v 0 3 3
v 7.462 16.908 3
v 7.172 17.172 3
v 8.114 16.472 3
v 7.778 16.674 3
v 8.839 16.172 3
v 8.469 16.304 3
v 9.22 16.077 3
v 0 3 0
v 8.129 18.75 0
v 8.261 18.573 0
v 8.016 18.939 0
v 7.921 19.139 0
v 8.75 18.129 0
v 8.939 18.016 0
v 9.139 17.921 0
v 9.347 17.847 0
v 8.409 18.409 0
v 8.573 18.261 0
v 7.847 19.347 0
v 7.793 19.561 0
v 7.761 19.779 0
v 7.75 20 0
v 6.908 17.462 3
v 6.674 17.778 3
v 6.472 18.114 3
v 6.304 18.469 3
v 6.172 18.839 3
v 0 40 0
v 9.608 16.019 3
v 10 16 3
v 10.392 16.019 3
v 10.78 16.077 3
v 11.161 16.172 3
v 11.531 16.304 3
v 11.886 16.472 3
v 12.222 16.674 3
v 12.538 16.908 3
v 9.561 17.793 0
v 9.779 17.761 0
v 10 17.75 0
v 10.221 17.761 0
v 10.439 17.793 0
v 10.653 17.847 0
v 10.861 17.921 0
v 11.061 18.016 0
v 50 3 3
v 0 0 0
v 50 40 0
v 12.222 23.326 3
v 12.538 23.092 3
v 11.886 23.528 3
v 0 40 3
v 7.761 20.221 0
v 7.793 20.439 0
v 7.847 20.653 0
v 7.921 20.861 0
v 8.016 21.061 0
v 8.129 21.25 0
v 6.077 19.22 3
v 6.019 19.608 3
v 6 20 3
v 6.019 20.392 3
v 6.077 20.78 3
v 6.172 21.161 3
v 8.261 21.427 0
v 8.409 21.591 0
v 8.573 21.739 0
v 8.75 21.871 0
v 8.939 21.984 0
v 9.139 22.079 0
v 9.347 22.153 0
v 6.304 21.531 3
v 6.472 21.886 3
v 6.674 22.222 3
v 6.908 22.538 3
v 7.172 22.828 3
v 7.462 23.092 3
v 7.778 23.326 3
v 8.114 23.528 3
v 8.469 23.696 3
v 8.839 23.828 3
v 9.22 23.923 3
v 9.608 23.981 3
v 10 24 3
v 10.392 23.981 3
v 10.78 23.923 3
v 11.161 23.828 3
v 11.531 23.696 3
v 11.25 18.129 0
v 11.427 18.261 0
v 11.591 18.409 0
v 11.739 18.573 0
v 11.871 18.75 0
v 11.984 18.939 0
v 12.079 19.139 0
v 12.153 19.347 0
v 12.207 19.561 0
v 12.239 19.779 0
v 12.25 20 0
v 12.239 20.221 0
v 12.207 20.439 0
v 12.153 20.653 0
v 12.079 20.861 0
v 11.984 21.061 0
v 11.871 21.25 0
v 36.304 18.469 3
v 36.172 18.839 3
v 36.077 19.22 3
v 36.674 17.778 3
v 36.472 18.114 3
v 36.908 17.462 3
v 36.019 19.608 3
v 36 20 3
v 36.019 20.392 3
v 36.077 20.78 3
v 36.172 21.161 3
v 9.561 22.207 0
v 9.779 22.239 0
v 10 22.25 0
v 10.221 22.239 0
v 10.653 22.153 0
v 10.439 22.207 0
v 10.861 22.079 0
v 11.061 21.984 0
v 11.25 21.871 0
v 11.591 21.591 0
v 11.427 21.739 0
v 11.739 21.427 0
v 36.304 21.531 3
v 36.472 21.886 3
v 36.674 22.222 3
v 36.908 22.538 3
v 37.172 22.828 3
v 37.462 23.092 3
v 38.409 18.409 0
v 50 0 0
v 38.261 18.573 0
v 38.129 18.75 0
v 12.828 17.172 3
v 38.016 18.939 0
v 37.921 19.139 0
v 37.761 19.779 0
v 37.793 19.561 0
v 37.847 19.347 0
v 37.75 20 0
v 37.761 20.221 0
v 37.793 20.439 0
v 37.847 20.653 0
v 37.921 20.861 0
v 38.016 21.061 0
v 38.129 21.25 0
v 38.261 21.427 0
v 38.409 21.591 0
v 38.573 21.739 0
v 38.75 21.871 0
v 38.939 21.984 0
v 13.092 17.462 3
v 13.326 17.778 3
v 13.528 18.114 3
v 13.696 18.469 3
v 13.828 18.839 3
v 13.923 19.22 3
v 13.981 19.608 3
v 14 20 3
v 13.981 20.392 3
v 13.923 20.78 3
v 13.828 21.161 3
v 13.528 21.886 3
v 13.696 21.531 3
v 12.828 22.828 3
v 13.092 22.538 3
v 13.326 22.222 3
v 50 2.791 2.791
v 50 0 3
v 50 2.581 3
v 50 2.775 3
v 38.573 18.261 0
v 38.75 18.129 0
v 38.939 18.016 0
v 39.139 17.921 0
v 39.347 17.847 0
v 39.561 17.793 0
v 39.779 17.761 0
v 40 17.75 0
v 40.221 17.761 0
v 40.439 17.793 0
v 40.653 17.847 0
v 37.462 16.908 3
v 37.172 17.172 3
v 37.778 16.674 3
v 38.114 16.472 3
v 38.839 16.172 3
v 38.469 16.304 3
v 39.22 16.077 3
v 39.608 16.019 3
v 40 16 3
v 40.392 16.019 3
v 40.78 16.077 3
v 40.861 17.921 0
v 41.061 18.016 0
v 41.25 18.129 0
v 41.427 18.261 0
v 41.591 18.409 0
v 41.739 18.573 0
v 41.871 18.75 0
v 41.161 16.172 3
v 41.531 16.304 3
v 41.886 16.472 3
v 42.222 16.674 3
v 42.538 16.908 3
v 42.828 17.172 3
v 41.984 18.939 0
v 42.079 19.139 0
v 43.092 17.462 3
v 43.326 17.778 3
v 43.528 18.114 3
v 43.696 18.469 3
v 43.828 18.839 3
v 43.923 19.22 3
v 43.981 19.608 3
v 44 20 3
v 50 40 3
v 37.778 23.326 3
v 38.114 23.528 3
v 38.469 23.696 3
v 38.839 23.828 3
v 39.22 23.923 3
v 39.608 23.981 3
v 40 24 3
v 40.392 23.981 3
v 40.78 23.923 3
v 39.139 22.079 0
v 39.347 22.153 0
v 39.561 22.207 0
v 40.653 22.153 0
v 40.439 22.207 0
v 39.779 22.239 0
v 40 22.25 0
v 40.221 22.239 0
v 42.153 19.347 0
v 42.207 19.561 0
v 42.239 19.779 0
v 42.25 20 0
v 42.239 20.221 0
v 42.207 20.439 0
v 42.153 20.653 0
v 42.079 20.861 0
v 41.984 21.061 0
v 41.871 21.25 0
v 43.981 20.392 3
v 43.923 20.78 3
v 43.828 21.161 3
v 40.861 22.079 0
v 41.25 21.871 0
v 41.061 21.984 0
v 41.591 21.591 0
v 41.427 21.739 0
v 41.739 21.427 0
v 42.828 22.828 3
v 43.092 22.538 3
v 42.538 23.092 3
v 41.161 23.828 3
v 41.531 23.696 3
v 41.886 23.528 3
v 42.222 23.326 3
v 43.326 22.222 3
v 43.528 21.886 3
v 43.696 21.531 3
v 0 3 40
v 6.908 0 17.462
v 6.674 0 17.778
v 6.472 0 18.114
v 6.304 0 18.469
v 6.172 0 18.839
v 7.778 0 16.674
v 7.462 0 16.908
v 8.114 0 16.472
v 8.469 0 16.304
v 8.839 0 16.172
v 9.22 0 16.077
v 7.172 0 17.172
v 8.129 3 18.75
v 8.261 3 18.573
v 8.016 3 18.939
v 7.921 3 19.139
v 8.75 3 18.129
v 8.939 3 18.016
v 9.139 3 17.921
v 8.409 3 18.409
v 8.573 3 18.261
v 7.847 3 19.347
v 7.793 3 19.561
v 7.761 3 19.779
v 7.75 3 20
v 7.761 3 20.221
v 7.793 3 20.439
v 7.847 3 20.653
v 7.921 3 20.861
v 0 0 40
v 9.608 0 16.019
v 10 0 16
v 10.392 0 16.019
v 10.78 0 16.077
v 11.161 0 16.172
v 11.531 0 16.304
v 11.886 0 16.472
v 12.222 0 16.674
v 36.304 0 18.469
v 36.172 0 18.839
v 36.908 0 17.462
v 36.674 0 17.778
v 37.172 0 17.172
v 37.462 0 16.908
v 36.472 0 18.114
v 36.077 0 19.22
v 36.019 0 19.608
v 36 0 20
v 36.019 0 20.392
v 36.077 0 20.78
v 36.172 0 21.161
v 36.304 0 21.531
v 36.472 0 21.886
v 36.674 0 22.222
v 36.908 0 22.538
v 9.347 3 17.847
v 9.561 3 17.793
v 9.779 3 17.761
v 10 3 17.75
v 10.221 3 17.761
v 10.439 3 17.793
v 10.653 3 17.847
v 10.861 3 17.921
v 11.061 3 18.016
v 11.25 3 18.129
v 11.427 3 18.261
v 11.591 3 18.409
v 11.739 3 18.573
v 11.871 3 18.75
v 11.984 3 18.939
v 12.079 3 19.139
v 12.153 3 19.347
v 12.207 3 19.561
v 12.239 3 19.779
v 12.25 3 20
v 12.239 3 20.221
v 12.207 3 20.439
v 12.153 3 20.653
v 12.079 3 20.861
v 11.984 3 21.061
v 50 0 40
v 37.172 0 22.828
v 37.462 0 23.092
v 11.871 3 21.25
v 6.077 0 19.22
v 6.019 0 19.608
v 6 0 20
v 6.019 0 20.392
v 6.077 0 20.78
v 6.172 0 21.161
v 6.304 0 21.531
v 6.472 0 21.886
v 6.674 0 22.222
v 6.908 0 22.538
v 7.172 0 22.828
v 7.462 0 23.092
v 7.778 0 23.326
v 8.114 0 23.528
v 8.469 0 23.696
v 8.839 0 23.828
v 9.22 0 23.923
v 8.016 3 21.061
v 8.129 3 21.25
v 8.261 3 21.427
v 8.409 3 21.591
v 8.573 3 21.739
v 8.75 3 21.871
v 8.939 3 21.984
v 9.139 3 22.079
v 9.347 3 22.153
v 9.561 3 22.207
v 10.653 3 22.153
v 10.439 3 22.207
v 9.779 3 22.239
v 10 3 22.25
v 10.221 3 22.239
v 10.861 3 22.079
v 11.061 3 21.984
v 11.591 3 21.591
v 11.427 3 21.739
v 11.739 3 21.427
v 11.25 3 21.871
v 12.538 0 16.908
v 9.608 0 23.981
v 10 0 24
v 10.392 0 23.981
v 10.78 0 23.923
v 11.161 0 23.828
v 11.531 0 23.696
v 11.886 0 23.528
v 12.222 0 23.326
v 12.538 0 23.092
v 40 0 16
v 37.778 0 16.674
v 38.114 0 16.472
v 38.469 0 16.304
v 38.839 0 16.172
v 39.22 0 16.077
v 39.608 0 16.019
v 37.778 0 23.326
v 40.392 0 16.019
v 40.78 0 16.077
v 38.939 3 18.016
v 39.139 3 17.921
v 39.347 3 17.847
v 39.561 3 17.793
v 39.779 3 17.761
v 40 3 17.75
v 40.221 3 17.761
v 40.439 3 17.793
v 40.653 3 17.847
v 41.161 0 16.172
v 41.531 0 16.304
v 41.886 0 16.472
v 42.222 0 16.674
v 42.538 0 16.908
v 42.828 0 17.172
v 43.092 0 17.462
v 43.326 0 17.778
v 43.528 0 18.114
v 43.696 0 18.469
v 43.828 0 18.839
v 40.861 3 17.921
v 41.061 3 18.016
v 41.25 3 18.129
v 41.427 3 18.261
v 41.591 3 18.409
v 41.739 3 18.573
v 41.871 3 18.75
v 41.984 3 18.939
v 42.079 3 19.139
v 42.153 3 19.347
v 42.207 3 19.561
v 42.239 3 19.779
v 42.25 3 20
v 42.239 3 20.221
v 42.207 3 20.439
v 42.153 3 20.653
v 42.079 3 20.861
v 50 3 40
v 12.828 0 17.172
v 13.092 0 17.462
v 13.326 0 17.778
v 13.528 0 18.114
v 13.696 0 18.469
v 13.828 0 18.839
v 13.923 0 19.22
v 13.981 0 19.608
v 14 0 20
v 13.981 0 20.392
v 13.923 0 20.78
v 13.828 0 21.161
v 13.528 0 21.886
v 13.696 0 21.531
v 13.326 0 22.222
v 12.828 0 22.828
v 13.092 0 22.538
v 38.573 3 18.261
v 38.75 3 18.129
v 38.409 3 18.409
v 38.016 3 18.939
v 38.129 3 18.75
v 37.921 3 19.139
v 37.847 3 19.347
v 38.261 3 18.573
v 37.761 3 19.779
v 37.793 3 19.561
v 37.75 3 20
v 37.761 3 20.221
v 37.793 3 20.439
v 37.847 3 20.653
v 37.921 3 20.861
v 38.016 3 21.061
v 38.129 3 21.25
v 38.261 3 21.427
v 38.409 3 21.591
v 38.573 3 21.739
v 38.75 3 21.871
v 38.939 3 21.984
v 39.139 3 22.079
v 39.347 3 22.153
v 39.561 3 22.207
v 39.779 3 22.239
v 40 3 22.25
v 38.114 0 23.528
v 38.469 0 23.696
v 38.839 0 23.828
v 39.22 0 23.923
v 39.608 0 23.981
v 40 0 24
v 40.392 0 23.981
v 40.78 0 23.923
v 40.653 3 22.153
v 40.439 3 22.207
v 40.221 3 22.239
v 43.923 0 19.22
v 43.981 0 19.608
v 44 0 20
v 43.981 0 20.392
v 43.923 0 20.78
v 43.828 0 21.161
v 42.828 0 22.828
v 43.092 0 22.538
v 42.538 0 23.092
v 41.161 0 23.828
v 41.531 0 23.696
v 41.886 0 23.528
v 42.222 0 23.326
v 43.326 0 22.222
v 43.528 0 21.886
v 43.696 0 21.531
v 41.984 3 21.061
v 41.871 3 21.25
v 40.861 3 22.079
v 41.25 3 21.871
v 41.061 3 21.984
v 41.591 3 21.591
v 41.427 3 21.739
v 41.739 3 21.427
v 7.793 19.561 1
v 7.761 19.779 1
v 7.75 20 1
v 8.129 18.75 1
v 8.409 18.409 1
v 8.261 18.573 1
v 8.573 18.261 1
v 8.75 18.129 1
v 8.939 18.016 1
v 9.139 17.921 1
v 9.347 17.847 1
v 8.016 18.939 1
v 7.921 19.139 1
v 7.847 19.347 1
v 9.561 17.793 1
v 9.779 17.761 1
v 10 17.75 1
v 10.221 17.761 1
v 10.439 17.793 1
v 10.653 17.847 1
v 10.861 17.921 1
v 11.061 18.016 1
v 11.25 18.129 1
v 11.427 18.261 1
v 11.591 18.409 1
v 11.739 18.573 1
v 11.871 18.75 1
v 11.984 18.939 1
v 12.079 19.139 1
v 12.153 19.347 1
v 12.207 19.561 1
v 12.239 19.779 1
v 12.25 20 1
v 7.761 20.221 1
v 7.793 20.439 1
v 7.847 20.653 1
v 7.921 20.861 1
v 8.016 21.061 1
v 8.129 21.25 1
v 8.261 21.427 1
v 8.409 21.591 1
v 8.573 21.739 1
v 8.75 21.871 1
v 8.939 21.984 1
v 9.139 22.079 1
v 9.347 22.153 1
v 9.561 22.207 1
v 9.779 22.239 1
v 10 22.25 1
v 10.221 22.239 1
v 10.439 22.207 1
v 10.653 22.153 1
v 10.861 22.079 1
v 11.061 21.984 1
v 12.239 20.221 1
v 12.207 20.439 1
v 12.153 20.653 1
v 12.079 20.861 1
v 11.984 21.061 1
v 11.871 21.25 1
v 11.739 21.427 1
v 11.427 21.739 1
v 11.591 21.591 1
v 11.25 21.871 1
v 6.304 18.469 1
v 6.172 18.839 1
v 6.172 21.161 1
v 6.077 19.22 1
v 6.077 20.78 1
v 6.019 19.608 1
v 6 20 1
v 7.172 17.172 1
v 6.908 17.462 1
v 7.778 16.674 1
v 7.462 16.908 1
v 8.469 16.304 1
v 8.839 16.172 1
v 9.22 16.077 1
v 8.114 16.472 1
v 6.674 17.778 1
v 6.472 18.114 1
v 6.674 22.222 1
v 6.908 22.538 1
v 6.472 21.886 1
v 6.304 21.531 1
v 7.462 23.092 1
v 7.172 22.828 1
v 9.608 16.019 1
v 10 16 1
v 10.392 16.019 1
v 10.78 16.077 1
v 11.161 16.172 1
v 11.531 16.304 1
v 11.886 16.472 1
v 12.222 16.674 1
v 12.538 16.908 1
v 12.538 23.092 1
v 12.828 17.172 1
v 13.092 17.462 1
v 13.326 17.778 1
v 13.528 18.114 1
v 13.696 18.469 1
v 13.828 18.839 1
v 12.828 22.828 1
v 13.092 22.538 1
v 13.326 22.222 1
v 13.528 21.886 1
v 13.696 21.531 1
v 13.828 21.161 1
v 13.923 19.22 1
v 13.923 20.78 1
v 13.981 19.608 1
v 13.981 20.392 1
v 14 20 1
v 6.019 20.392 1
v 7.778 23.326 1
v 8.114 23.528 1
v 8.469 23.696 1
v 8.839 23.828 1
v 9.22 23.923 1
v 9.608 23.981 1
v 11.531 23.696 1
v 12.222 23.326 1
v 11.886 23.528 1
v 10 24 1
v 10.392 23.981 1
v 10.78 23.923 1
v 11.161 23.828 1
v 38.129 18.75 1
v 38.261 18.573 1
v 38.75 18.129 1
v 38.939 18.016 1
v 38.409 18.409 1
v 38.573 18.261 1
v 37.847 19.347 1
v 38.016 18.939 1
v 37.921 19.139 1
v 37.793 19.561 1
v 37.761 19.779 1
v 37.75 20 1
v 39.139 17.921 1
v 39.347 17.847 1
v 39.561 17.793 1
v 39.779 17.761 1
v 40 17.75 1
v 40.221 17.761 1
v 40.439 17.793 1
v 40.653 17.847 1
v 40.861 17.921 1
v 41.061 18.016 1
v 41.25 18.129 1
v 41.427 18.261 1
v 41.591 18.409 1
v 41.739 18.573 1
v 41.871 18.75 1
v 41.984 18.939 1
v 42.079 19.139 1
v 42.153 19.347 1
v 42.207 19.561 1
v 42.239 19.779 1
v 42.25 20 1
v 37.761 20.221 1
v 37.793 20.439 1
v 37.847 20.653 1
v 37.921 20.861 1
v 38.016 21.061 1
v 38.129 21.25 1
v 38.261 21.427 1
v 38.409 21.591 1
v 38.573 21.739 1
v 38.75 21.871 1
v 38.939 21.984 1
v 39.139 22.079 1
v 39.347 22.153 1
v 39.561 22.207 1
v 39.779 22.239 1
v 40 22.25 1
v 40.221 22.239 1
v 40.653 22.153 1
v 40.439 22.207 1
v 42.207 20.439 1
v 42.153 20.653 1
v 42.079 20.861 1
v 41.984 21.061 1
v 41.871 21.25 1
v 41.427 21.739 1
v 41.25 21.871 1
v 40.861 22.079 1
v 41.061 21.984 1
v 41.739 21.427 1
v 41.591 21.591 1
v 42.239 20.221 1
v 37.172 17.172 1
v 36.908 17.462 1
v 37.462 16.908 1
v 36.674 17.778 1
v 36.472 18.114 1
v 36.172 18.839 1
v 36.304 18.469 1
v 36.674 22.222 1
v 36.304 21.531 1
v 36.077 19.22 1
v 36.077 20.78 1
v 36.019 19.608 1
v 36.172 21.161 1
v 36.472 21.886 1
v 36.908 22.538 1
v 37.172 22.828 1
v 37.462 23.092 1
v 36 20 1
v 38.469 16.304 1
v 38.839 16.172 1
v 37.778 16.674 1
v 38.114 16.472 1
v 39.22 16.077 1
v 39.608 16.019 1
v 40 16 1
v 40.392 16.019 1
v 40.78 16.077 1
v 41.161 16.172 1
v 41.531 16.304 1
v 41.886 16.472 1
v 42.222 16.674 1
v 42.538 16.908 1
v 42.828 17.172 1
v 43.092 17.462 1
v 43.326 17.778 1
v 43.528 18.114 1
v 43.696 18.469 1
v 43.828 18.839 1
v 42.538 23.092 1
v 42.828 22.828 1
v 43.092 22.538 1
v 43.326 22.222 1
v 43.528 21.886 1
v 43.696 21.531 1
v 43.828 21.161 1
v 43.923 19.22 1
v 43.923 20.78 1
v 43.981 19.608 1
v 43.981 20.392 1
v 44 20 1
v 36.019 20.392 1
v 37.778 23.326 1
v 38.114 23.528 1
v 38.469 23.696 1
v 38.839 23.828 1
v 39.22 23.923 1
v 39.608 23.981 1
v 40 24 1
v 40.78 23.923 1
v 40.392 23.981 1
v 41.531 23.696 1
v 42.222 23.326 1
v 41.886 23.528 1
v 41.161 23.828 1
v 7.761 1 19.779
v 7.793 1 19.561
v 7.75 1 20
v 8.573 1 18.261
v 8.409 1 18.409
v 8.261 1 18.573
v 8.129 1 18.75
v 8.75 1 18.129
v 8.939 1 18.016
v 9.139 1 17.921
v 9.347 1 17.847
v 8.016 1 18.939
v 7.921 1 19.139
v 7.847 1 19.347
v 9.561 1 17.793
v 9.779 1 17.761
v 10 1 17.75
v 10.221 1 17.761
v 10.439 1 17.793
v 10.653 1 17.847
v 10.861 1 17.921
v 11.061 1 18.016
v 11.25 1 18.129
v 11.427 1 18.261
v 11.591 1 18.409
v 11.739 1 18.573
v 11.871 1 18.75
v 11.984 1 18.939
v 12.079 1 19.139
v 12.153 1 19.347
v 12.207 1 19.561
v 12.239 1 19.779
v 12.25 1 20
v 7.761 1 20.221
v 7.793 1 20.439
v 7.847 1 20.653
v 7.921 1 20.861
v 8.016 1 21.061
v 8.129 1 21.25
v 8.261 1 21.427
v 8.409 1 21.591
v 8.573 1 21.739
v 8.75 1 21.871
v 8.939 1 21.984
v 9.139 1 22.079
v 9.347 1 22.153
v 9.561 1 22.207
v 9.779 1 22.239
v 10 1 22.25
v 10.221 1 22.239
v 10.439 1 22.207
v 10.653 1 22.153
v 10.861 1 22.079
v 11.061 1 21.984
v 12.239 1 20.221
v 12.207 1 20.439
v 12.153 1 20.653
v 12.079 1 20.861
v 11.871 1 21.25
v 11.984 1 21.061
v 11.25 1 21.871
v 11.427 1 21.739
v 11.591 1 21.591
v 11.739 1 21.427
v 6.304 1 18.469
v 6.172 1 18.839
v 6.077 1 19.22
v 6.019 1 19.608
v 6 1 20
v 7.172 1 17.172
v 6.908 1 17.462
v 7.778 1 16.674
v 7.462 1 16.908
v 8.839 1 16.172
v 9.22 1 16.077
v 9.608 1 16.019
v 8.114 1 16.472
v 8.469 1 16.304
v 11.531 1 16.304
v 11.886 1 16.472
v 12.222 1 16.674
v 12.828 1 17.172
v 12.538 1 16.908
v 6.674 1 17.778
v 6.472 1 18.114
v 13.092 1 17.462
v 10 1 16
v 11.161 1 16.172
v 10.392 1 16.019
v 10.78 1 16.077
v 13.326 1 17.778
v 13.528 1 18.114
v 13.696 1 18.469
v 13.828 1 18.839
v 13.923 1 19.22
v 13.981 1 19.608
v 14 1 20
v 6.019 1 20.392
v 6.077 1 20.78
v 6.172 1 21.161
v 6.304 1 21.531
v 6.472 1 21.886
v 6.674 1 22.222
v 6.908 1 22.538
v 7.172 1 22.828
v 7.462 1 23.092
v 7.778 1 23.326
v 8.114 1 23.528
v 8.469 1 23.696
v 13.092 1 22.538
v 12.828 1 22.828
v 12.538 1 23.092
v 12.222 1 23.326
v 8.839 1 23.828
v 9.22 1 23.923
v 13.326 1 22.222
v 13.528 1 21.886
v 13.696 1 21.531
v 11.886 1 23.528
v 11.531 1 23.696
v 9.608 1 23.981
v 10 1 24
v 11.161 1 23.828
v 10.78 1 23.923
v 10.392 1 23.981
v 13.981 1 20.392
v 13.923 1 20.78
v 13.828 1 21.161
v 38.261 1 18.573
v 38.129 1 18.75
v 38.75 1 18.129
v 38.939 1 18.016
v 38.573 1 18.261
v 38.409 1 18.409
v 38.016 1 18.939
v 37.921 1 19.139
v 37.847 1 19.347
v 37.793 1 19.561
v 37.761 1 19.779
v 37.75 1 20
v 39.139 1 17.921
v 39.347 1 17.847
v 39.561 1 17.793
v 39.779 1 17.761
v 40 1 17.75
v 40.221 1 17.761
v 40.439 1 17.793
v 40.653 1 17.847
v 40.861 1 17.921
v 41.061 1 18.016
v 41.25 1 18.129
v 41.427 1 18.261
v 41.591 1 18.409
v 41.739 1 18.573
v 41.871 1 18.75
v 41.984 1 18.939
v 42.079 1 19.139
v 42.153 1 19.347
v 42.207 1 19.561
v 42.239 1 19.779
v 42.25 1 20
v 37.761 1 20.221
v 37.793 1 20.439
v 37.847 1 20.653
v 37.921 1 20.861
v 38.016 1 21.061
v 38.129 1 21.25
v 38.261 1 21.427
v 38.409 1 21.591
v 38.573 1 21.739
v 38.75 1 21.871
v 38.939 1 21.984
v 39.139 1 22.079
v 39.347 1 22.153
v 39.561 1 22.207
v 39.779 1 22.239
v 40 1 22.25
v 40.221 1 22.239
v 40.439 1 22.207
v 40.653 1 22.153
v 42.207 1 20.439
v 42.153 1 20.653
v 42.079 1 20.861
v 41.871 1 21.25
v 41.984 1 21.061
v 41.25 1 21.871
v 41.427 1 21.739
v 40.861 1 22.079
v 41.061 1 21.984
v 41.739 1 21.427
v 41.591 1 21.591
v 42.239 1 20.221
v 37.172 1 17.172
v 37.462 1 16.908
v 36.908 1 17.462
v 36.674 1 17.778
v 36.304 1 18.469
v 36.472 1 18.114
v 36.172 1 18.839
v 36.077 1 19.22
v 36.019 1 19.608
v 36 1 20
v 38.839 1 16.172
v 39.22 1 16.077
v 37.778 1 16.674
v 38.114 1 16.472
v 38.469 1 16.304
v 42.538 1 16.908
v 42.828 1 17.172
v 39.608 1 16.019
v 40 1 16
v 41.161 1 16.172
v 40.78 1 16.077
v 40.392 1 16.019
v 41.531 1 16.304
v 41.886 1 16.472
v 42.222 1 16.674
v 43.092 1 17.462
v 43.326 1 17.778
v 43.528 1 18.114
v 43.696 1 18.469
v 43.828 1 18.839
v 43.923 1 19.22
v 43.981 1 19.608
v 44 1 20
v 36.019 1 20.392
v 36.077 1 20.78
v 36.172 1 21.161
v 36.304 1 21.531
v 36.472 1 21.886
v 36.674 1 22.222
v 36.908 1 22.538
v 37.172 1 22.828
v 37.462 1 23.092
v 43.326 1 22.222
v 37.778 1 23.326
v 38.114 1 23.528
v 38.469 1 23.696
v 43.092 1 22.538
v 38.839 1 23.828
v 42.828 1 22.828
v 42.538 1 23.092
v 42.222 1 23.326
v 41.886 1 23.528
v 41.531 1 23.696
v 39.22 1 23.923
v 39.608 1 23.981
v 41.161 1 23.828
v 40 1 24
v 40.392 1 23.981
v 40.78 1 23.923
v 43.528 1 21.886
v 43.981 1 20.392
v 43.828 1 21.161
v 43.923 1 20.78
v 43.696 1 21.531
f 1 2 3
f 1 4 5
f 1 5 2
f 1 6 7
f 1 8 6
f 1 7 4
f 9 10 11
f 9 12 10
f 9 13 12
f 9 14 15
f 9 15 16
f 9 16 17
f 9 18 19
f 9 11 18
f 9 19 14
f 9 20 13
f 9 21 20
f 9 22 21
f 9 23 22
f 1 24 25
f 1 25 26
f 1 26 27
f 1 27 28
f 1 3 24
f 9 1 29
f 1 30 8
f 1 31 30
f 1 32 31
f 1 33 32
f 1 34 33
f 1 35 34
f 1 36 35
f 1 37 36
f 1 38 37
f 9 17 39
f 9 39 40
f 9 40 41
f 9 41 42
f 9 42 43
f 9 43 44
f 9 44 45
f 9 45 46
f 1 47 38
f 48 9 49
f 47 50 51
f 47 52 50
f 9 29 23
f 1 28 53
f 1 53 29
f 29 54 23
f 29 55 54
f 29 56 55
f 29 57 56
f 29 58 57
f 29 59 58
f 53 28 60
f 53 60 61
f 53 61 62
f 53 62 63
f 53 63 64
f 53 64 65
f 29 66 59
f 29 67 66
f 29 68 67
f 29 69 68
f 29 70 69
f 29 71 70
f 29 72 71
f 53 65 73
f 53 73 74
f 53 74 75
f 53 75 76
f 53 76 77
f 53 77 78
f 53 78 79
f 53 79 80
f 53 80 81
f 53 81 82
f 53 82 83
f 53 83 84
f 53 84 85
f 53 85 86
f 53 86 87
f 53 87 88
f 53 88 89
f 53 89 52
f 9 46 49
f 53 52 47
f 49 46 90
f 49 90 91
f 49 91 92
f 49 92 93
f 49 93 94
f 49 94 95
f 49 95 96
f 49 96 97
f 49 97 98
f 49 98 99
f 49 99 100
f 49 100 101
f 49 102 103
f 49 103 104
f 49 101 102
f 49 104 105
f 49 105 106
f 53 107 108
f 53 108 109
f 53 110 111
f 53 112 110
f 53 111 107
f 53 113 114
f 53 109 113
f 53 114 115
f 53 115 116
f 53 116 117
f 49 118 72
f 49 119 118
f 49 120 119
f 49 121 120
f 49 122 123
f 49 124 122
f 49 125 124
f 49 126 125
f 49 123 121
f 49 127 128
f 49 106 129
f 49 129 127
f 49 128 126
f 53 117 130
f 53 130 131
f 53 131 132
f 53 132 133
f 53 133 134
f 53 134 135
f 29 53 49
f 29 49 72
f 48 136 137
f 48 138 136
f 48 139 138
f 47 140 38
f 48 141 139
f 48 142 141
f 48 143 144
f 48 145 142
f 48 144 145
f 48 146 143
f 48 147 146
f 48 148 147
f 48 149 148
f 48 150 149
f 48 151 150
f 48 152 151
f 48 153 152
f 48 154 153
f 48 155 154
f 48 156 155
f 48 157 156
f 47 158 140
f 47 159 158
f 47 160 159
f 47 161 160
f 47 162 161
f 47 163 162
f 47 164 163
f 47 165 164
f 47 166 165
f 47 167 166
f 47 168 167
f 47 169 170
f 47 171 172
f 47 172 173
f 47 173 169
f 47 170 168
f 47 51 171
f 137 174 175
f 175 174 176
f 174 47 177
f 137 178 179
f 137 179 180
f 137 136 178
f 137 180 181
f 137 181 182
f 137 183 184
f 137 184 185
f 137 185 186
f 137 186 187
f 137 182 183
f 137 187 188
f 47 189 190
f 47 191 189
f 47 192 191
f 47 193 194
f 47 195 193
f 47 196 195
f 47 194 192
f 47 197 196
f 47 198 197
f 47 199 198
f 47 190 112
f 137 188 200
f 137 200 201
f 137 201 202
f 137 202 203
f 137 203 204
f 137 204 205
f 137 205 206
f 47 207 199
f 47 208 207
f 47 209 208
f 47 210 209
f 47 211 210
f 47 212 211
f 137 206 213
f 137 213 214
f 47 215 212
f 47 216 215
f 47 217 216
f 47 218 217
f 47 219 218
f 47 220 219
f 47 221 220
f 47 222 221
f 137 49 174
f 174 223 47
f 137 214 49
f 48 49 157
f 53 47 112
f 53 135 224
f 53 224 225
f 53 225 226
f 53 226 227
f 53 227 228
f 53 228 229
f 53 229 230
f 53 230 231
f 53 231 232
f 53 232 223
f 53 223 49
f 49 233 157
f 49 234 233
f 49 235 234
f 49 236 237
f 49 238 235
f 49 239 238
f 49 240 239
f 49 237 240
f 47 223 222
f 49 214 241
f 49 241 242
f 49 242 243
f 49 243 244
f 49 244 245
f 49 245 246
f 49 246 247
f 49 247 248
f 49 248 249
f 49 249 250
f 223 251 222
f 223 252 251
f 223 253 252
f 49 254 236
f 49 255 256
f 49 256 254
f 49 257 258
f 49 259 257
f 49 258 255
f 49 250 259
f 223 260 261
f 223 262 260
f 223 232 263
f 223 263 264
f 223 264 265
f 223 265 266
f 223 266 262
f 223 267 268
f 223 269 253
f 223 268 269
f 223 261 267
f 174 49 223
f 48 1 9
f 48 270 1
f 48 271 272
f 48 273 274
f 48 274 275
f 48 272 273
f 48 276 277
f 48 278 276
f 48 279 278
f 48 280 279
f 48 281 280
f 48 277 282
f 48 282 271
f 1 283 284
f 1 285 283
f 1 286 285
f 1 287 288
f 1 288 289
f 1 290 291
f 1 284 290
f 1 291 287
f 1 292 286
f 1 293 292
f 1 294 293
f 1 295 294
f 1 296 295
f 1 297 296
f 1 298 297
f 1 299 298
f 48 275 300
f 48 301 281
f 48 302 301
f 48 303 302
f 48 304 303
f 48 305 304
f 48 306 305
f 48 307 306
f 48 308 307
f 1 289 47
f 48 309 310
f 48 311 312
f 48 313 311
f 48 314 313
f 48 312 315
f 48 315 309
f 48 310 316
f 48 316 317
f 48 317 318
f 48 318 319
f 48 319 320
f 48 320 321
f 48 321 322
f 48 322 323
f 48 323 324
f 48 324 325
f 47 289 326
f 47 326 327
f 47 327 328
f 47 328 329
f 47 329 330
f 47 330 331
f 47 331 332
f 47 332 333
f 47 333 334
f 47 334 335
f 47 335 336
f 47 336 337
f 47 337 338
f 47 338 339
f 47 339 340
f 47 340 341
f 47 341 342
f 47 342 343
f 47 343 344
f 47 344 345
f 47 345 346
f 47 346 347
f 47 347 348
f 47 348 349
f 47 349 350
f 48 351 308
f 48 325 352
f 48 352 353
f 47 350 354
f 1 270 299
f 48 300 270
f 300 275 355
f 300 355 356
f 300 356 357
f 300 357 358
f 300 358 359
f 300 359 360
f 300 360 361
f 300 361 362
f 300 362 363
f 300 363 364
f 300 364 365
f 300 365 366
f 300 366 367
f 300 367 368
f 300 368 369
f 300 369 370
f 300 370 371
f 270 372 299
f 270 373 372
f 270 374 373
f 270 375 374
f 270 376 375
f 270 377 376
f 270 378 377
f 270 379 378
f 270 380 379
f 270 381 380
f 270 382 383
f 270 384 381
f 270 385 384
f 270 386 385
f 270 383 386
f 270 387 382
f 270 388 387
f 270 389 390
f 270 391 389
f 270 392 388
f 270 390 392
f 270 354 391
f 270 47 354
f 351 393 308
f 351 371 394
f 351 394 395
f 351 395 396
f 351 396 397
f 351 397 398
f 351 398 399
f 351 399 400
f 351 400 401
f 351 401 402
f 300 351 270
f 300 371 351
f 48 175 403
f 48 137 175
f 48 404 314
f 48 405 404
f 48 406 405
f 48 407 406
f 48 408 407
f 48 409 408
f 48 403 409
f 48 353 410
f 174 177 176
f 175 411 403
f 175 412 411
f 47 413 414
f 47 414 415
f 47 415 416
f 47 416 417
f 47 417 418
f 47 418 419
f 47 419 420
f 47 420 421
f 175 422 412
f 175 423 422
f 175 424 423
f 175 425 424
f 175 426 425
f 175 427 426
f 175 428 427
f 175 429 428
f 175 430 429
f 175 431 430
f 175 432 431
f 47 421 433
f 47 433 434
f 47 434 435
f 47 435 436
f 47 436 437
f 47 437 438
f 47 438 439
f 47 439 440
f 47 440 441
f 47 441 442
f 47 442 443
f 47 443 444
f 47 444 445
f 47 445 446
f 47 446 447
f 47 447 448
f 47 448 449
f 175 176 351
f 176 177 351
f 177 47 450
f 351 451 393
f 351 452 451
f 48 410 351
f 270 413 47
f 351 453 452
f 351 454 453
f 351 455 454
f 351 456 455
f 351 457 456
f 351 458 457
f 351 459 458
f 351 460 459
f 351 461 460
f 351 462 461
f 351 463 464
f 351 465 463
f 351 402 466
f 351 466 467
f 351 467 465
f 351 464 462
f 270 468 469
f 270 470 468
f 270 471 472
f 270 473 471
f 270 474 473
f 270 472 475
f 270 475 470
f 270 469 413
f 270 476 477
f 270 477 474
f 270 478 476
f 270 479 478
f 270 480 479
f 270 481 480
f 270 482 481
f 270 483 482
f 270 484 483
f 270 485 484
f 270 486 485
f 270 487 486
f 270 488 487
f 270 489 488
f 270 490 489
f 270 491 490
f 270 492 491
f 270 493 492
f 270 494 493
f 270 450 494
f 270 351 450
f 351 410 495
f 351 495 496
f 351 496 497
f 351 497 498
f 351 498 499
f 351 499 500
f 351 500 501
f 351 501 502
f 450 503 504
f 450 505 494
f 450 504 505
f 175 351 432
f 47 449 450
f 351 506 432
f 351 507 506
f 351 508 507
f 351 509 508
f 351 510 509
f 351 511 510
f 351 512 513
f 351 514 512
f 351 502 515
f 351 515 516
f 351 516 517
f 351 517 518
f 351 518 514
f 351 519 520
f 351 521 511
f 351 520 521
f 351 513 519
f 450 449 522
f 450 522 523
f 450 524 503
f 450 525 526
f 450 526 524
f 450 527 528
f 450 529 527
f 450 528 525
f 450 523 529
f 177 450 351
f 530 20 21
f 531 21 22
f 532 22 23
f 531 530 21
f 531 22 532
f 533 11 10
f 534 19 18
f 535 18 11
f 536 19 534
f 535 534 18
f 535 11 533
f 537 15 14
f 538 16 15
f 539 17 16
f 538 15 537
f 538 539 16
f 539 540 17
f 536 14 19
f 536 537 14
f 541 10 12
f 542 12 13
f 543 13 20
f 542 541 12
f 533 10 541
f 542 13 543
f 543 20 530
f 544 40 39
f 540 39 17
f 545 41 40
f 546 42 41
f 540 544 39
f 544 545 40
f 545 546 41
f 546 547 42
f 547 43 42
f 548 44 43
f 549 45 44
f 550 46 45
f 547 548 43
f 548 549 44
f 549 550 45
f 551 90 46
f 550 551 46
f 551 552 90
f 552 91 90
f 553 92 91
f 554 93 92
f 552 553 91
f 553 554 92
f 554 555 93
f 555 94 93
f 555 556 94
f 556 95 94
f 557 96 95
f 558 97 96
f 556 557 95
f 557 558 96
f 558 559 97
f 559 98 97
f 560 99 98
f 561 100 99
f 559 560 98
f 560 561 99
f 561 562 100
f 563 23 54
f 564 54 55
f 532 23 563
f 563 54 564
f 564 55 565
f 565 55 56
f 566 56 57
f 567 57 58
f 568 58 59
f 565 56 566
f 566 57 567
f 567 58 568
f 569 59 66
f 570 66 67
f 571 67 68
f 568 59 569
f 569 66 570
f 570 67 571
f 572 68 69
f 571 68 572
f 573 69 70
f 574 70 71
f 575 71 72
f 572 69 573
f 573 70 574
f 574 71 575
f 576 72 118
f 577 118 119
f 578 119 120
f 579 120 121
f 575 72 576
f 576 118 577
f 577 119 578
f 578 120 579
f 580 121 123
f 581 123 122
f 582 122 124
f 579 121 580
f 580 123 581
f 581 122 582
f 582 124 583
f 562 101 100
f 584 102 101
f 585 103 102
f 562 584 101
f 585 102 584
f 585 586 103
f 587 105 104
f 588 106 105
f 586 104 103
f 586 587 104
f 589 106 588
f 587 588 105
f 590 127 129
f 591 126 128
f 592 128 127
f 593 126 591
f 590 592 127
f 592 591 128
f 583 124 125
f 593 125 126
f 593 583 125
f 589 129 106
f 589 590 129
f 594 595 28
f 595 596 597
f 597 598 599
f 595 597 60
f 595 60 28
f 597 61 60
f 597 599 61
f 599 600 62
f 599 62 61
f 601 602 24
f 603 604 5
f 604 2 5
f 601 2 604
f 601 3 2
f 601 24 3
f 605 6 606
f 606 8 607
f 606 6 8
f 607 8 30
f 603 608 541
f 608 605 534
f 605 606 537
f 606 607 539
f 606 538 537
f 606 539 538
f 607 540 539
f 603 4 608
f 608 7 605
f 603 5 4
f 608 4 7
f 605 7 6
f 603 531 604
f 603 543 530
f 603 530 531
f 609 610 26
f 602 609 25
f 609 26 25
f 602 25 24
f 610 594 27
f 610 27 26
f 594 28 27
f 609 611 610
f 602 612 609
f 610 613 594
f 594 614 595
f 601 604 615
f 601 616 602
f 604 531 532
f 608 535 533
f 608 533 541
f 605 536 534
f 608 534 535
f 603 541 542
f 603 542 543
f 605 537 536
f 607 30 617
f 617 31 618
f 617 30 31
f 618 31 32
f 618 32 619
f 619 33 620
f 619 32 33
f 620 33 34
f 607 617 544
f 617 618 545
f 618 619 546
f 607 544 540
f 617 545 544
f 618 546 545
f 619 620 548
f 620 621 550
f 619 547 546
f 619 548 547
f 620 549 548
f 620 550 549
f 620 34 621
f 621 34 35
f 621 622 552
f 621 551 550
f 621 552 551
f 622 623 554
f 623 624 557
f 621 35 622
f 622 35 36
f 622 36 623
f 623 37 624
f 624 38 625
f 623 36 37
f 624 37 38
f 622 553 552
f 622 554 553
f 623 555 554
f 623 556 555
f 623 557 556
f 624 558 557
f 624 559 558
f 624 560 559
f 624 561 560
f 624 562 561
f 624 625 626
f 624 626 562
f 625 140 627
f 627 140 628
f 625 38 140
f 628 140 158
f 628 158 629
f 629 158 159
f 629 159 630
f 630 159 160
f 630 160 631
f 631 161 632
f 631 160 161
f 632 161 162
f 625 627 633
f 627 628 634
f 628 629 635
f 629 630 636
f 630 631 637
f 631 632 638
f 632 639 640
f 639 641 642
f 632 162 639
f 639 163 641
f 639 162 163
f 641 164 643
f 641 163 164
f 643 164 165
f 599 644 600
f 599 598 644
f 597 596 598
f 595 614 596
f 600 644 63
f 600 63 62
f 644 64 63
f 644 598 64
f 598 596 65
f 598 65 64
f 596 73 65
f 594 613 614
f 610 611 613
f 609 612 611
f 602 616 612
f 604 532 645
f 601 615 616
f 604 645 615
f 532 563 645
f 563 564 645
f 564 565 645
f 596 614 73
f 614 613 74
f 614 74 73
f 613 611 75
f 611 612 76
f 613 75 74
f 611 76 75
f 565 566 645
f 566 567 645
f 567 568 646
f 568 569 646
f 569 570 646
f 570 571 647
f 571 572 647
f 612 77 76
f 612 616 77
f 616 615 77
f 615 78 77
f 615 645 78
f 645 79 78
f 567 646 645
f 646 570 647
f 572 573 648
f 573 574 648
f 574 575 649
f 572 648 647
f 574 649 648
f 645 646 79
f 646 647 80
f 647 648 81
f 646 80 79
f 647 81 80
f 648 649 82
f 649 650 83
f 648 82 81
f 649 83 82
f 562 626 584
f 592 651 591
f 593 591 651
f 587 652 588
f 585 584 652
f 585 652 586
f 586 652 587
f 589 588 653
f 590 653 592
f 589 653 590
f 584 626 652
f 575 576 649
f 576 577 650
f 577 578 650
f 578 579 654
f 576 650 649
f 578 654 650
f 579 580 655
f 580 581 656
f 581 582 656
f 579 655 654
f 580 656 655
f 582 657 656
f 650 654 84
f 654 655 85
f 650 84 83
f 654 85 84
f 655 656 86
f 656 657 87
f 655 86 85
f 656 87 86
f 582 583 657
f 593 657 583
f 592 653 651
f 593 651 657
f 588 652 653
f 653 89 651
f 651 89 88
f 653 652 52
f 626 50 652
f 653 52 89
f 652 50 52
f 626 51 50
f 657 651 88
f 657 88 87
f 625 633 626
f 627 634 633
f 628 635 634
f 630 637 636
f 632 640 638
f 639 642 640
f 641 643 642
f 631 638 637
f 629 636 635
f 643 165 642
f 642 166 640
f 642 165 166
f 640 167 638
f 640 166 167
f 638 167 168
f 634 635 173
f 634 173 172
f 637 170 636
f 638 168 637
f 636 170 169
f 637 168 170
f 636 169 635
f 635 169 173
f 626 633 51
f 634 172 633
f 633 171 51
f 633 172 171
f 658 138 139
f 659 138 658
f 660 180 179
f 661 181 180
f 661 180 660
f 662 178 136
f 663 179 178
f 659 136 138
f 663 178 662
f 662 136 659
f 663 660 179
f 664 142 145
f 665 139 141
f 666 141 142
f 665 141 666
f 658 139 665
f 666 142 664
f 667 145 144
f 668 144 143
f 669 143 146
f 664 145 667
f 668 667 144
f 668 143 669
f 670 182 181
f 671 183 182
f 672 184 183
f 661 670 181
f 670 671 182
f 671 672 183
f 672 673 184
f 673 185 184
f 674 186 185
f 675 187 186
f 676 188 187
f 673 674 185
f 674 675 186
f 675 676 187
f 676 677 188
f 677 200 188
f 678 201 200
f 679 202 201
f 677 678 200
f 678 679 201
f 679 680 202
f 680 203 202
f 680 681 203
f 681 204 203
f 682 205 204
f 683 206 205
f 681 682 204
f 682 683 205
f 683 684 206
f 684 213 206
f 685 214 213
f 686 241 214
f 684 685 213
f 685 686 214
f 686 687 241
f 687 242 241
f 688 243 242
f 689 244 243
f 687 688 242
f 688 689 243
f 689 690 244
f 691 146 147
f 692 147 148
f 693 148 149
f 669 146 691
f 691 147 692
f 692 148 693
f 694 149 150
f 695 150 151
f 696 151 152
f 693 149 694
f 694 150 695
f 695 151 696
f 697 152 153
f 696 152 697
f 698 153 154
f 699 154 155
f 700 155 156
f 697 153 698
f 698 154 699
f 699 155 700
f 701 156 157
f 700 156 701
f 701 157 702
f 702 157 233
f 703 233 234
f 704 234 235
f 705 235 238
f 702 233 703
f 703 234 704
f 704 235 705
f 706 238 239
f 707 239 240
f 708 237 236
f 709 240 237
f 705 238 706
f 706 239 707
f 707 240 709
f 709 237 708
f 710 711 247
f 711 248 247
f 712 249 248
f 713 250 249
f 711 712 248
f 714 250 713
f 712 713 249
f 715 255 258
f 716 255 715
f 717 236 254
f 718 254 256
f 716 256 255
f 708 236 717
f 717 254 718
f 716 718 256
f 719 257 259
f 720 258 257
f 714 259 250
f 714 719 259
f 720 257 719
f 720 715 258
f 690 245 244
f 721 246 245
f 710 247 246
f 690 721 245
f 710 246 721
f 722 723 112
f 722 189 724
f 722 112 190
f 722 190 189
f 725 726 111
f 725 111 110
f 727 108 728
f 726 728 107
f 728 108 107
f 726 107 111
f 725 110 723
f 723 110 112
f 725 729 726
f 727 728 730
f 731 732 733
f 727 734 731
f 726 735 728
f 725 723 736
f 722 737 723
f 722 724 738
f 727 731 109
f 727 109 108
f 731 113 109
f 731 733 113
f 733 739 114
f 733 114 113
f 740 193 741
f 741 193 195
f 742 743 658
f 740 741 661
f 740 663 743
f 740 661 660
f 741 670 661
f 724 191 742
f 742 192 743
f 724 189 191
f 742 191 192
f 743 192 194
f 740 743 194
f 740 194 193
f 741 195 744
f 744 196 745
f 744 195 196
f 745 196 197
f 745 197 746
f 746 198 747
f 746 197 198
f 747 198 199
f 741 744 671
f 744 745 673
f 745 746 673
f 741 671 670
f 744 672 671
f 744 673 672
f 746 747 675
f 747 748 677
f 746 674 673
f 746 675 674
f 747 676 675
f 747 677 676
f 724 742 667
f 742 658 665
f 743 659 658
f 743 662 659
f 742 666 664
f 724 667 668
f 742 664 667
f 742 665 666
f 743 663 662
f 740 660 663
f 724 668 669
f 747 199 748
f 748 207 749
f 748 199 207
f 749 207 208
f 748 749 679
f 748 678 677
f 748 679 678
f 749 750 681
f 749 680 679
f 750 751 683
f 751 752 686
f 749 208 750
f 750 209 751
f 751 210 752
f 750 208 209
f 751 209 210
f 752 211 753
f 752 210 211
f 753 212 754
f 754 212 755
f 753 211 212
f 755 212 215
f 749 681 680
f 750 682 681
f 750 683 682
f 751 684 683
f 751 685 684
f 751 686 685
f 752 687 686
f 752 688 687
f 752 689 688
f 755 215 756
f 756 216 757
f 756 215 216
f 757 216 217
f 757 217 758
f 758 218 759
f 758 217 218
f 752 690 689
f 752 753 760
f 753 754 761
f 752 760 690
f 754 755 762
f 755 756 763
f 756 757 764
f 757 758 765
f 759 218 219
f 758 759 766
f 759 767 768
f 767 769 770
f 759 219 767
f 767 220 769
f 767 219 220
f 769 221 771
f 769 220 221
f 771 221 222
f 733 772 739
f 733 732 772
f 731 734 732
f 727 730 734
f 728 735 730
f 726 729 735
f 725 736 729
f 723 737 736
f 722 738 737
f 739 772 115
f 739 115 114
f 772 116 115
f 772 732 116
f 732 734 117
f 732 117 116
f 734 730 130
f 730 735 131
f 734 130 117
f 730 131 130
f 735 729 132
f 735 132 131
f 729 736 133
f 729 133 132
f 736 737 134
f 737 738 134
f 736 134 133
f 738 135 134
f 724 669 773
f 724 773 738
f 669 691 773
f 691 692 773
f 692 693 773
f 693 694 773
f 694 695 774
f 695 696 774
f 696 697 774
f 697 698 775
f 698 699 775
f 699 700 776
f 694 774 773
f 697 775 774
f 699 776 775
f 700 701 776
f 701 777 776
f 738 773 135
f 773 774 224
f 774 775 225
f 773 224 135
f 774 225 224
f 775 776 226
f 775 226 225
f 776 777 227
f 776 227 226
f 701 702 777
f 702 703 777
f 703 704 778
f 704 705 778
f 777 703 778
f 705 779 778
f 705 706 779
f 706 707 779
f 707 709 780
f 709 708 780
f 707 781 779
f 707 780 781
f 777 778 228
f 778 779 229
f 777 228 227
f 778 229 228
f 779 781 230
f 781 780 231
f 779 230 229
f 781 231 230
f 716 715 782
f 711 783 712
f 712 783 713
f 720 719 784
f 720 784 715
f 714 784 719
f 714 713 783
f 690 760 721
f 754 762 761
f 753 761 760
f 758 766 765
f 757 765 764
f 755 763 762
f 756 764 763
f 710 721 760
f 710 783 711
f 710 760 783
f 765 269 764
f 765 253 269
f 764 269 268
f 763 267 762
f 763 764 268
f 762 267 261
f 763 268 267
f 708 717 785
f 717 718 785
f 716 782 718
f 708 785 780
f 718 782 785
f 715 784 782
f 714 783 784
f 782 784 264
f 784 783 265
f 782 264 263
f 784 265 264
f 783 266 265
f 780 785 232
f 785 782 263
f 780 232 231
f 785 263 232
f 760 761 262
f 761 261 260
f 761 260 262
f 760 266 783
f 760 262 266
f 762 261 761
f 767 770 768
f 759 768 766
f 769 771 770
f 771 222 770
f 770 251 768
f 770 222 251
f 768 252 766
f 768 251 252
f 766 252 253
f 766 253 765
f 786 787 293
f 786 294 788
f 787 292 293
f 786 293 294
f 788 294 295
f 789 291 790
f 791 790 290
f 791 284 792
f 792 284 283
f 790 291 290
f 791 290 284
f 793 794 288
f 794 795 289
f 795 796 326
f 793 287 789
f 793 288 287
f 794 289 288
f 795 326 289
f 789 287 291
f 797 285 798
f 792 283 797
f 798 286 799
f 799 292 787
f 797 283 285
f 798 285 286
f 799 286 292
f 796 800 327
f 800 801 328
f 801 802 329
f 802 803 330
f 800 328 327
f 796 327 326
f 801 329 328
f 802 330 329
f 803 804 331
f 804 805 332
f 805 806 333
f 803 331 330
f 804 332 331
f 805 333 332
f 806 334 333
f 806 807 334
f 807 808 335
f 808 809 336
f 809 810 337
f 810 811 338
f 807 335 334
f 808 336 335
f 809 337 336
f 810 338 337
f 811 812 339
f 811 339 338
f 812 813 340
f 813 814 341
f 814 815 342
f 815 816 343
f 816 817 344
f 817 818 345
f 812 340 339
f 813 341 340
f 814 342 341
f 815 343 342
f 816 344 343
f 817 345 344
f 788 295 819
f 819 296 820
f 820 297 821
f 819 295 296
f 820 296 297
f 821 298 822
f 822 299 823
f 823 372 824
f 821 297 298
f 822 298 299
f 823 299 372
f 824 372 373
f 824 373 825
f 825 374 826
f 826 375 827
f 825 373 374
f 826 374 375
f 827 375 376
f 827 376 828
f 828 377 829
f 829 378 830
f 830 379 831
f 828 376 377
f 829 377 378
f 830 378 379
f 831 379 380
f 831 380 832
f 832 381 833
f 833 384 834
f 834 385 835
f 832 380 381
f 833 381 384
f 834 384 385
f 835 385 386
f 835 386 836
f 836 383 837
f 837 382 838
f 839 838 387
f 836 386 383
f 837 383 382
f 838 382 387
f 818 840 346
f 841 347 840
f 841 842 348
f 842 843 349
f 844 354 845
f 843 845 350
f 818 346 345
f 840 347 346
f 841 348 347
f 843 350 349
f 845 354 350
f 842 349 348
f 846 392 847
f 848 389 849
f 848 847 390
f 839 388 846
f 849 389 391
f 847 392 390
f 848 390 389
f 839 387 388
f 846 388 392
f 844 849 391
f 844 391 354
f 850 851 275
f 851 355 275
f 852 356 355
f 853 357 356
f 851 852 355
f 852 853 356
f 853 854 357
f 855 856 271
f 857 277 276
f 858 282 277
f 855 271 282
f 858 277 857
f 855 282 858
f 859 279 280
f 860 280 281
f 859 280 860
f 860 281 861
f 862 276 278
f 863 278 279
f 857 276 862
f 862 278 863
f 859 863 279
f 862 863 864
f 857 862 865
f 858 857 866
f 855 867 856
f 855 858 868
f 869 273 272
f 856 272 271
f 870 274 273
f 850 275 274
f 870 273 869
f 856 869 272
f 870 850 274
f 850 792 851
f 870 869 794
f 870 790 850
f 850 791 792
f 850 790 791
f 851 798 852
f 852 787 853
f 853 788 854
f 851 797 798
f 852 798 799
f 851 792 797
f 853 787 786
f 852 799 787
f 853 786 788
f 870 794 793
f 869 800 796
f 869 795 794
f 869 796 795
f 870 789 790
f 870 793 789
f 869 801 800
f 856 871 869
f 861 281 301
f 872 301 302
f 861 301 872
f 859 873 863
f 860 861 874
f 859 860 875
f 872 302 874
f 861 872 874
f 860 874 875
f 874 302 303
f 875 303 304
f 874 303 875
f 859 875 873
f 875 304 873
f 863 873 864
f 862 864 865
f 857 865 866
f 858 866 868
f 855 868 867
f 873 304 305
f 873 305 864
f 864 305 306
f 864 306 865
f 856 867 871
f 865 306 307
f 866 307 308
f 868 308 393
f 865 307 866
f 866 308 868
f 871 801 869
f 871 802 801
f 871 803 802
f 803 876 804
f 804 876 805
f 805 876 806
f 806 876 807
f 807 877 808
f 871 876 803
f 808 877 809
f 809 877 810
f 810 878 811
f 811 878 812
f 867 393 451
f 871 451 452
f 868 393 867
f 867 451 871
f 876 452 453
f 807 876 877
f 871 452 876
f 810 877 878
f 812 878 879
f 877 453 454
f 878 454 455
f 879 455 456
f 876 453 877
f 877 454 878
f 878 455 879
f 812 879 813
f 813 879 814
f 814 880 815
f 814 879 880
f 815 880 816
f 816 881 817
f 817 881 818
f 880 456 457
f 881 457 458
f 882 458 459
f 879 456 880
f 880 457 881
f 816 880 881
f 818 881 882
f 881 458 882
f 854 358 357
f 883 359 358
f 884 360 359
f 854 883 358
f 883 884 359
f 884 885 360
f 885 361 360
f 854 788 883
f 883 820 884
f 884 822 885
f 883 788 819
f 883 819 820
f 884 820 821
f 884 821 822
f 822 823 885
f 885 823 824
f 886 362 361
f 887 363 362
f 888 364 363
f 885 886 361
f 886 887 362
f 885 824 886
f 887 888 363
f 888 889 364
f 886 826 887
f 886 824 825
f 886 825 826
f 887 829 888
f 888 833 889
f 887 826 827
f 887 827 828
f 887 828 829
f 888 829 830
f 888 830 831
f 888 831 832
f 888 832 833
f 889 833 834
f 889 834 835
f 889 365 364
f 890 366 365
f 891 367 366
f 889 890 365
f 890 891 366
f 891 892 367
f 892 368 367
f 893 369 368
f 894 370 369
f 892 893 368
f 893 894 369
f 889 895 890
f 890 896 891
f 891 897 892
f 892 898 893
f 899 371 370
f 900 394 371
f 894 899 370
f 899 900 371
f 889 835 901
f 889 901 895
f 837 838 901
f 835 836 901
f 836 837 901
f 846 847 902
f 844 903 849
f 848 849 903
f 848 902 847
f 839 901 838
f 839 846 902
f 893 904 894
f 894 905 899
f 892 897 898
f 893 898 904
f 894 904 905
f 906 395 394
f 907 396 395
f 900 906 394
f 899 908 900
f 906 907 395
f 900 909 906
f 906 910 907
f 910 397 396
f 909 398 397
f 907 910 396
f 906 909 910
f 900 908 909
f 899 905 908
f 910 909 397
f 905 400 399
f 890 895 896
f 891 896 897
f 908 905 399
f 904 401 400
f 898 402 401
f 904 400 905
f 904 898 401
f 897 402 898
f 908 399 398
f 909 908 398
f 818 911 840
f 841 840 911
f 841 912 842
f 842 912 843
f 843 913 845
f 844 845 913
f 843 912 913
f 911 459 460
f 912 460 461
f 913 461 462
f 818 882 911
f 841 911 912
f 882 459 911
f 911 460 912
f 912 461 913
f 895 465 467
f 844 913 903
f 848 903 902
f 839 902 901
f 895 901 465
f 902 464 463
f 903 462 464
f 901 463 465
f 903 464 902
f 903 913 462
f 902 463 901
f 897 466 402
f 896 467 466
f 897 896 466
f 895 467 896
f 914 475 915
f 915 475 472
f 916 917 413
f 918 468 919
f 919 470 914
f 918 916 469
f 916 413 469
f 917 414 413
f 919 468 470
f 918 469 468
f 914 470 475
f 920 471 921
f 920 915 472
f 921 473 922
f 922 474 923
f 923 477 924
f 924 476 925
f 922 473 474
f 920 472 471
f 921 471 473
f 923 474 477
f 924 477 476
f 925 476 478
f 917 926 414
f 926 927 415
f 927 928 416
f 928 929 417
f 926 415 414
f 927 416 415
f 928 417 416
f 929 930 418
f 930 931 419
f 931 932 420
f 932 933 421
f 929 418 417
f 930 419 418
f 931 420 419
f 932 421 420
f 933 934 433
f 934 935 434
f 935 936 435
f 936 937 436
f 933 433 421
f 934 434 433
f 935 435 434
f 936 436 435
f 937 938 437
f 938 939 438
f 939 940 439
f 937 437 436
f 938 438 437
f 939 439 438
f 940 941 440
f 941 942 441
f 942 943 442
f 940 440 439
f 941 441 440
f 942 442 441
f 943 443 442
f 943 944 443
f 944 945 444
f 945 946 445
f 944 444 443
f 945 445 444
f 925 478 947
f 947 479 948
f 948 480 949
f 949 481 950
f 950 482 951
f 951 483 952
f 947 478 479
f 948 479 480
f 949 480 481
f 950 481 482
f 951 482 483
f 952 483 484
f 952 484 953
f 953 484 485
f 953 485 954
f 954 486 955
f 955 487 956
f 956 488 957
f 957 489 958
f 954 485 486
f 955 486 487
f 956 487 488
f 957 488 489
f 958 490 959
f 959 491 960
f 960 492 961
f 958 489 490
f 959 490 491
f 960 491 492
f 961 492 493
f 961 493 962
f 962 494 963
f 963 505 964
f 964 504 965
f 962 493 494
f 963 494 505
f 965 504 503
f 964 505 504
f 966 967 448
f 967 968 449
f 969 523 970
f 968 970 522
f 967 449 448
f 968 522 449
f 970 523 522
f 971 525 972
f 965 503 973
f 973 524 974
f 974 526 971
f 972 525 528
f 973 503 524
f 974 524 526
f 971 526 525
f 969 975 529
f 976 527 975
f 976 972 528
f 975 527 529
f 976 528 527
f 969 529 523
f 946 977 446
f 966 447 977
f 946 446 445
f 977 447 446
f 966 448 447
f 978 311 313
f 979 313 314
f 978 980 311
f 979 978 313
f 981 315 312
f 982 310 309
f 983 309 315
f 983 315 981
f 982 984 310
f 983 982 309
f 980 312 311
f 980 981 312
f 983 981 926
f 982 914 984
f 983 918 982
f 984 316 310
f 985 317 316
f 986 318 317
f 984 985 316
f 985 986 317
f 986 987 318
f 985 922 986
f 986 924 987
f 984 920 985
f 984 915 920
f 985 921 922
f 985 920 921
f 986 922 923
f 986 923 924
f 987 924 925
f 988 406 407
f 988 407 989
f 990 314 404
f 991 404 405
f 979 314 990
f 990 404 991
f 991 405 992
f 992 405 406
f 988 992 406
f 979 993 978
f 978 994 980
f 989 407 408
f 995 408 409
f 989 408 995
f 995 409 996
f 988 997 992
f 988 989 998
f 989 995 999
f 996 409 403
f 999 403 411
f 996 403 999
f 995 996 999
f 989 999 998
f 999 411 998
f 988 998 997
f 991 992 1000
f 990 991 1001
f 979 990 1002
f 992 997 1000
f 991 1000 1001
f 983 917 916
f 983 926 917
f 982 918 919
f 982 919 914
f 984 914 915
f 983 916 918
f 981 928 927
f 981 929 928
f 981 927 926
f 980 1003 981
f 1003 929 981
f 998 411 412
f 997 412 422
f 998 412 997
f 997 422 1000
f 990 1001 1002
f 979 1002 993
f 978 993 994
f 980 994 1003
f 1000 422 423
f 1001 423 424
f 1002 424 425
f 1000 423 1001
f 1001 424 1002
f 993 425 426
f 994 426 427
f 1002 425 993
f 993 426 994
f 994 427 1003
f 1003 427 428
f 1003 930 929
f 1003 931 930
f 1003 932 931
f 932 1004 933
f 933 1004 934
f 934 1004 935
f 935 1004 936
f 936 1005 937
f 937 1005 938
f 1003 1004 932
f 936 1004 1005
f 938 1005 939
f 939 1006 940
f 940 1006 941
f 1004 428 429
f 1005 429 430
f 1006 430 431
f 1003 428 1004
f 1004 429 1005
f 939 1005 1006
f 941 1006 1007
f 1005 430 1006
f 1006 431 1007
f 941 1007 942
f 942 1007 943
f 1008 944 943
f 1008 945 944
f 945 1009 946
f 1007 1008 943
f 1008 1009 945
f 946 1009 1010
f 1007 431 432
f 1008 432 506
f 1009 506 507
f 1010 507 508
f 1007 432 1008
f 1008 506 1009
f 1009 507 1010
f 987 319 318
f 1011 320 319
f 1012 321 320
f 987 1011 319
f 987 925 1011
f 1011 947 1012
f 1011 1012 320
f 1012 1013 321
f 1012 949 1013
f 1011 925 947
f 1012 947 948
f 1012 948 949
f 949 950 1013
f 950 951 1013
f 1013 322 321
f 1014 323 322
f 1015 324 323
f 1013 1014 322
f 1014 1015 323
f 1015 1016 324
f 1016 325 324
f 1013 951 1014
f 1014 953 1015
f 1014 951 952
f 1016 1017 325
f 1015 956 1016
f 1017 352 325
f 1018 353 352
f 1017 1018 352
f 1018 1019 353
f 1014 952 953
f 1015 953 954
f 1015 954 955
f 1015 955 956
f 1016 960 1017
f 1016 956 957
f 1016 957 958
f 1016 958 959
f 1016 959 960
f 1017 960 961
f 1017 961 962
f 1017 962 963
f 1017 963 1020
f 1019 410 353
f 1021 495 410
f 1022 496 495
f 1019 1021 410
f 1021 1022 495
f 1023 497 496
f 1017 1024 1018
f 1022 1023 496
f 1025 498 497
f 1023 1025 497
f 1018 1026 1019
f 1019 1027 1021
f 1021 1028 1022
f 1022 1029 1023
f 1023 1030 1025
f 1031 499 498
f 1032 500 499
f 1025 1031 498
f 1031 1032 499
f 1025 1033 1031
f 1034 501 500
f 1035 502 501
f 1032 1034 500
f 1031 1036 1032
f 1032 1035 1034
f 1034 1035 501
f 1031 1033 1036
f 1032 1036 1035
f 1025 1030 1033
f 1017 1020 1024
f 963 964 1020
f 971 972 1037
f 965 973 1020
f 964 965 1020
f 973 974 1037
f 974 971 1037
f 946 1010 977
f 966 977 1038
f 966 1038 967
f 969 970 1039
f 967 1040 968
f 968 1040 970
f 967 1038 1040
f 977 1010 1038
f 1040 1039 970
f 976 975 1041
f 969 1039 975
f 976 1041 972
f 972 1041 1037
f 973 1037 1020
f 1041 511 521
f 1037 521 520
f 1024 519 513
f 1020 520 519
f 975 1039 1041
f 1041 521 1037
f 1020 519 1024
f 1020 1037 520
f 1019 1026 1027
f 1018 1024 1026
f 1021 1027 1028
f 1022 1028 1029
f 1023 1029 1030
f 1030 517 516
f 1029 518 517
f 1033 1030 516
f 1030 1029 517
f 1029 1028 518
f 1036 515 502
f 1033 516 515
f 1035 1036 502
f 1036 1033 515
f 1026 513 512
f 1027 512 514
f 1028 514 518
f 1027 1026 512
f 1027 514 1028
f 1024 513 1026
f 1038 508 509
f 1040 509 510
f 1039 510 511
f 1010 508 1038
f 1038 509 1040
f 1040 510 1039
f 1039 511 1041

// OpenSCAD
// L-bracket with counterbored M4 holes
// Dimensions
w = 50;      // width (X)
d = 40;      // depth of horizontal flange (Y)
h = 40;      // height of vertical flange (Z)
t = 3;       // thickness

// Holes
dh = 4.5;    // through hole diameter
ds = 8;      // counterbore diameter
sd = 2;      // counterbore depth
edge = 10;   // hole offset from side edges along X

$fn = 64;

difference() {
  // L-bracket body: inner corner at origin, horizontal +Y, vertical +Z
  union() {
    // Horizontal flange: X=w, Y=d, Z=t
    cube([w, d, t], center=false);
    // Vertical flange: X=w, Y=t, Z=h
    cube([w, t, h], center=false);
  }

  // Horizontal flange holes (axis along Z), counterbore from top (+Z)
  for (x = [edge, w - edge]) {
    // Through hole
    translate([x, d/2, -1])
      cylinder(h = t + 2, d = dh);
    // Counterbore from top face
    translate([x, d/2, t - sd])
      cylinder(h = sd, d = ds);
  }

  // Vertical flange holes (axis along Y), counterbore from outside face (+Y)
  for (x = [edge, w - edge]) {
    // Through hole (centered, long enough to pass through thickness)
    translate([x, t/2, h/2])
      rotate([90, 0, 0])
        cylinder(h = t + 6, d = dh, center=true);
    // Counterbore from outside face at Y = +t, depth sd toward -Y
    translate([x, t - sd, h/2])
      rotate([90, 0, 0])
        cylinder(h = sd, d = ds, center=false);
  }
}
